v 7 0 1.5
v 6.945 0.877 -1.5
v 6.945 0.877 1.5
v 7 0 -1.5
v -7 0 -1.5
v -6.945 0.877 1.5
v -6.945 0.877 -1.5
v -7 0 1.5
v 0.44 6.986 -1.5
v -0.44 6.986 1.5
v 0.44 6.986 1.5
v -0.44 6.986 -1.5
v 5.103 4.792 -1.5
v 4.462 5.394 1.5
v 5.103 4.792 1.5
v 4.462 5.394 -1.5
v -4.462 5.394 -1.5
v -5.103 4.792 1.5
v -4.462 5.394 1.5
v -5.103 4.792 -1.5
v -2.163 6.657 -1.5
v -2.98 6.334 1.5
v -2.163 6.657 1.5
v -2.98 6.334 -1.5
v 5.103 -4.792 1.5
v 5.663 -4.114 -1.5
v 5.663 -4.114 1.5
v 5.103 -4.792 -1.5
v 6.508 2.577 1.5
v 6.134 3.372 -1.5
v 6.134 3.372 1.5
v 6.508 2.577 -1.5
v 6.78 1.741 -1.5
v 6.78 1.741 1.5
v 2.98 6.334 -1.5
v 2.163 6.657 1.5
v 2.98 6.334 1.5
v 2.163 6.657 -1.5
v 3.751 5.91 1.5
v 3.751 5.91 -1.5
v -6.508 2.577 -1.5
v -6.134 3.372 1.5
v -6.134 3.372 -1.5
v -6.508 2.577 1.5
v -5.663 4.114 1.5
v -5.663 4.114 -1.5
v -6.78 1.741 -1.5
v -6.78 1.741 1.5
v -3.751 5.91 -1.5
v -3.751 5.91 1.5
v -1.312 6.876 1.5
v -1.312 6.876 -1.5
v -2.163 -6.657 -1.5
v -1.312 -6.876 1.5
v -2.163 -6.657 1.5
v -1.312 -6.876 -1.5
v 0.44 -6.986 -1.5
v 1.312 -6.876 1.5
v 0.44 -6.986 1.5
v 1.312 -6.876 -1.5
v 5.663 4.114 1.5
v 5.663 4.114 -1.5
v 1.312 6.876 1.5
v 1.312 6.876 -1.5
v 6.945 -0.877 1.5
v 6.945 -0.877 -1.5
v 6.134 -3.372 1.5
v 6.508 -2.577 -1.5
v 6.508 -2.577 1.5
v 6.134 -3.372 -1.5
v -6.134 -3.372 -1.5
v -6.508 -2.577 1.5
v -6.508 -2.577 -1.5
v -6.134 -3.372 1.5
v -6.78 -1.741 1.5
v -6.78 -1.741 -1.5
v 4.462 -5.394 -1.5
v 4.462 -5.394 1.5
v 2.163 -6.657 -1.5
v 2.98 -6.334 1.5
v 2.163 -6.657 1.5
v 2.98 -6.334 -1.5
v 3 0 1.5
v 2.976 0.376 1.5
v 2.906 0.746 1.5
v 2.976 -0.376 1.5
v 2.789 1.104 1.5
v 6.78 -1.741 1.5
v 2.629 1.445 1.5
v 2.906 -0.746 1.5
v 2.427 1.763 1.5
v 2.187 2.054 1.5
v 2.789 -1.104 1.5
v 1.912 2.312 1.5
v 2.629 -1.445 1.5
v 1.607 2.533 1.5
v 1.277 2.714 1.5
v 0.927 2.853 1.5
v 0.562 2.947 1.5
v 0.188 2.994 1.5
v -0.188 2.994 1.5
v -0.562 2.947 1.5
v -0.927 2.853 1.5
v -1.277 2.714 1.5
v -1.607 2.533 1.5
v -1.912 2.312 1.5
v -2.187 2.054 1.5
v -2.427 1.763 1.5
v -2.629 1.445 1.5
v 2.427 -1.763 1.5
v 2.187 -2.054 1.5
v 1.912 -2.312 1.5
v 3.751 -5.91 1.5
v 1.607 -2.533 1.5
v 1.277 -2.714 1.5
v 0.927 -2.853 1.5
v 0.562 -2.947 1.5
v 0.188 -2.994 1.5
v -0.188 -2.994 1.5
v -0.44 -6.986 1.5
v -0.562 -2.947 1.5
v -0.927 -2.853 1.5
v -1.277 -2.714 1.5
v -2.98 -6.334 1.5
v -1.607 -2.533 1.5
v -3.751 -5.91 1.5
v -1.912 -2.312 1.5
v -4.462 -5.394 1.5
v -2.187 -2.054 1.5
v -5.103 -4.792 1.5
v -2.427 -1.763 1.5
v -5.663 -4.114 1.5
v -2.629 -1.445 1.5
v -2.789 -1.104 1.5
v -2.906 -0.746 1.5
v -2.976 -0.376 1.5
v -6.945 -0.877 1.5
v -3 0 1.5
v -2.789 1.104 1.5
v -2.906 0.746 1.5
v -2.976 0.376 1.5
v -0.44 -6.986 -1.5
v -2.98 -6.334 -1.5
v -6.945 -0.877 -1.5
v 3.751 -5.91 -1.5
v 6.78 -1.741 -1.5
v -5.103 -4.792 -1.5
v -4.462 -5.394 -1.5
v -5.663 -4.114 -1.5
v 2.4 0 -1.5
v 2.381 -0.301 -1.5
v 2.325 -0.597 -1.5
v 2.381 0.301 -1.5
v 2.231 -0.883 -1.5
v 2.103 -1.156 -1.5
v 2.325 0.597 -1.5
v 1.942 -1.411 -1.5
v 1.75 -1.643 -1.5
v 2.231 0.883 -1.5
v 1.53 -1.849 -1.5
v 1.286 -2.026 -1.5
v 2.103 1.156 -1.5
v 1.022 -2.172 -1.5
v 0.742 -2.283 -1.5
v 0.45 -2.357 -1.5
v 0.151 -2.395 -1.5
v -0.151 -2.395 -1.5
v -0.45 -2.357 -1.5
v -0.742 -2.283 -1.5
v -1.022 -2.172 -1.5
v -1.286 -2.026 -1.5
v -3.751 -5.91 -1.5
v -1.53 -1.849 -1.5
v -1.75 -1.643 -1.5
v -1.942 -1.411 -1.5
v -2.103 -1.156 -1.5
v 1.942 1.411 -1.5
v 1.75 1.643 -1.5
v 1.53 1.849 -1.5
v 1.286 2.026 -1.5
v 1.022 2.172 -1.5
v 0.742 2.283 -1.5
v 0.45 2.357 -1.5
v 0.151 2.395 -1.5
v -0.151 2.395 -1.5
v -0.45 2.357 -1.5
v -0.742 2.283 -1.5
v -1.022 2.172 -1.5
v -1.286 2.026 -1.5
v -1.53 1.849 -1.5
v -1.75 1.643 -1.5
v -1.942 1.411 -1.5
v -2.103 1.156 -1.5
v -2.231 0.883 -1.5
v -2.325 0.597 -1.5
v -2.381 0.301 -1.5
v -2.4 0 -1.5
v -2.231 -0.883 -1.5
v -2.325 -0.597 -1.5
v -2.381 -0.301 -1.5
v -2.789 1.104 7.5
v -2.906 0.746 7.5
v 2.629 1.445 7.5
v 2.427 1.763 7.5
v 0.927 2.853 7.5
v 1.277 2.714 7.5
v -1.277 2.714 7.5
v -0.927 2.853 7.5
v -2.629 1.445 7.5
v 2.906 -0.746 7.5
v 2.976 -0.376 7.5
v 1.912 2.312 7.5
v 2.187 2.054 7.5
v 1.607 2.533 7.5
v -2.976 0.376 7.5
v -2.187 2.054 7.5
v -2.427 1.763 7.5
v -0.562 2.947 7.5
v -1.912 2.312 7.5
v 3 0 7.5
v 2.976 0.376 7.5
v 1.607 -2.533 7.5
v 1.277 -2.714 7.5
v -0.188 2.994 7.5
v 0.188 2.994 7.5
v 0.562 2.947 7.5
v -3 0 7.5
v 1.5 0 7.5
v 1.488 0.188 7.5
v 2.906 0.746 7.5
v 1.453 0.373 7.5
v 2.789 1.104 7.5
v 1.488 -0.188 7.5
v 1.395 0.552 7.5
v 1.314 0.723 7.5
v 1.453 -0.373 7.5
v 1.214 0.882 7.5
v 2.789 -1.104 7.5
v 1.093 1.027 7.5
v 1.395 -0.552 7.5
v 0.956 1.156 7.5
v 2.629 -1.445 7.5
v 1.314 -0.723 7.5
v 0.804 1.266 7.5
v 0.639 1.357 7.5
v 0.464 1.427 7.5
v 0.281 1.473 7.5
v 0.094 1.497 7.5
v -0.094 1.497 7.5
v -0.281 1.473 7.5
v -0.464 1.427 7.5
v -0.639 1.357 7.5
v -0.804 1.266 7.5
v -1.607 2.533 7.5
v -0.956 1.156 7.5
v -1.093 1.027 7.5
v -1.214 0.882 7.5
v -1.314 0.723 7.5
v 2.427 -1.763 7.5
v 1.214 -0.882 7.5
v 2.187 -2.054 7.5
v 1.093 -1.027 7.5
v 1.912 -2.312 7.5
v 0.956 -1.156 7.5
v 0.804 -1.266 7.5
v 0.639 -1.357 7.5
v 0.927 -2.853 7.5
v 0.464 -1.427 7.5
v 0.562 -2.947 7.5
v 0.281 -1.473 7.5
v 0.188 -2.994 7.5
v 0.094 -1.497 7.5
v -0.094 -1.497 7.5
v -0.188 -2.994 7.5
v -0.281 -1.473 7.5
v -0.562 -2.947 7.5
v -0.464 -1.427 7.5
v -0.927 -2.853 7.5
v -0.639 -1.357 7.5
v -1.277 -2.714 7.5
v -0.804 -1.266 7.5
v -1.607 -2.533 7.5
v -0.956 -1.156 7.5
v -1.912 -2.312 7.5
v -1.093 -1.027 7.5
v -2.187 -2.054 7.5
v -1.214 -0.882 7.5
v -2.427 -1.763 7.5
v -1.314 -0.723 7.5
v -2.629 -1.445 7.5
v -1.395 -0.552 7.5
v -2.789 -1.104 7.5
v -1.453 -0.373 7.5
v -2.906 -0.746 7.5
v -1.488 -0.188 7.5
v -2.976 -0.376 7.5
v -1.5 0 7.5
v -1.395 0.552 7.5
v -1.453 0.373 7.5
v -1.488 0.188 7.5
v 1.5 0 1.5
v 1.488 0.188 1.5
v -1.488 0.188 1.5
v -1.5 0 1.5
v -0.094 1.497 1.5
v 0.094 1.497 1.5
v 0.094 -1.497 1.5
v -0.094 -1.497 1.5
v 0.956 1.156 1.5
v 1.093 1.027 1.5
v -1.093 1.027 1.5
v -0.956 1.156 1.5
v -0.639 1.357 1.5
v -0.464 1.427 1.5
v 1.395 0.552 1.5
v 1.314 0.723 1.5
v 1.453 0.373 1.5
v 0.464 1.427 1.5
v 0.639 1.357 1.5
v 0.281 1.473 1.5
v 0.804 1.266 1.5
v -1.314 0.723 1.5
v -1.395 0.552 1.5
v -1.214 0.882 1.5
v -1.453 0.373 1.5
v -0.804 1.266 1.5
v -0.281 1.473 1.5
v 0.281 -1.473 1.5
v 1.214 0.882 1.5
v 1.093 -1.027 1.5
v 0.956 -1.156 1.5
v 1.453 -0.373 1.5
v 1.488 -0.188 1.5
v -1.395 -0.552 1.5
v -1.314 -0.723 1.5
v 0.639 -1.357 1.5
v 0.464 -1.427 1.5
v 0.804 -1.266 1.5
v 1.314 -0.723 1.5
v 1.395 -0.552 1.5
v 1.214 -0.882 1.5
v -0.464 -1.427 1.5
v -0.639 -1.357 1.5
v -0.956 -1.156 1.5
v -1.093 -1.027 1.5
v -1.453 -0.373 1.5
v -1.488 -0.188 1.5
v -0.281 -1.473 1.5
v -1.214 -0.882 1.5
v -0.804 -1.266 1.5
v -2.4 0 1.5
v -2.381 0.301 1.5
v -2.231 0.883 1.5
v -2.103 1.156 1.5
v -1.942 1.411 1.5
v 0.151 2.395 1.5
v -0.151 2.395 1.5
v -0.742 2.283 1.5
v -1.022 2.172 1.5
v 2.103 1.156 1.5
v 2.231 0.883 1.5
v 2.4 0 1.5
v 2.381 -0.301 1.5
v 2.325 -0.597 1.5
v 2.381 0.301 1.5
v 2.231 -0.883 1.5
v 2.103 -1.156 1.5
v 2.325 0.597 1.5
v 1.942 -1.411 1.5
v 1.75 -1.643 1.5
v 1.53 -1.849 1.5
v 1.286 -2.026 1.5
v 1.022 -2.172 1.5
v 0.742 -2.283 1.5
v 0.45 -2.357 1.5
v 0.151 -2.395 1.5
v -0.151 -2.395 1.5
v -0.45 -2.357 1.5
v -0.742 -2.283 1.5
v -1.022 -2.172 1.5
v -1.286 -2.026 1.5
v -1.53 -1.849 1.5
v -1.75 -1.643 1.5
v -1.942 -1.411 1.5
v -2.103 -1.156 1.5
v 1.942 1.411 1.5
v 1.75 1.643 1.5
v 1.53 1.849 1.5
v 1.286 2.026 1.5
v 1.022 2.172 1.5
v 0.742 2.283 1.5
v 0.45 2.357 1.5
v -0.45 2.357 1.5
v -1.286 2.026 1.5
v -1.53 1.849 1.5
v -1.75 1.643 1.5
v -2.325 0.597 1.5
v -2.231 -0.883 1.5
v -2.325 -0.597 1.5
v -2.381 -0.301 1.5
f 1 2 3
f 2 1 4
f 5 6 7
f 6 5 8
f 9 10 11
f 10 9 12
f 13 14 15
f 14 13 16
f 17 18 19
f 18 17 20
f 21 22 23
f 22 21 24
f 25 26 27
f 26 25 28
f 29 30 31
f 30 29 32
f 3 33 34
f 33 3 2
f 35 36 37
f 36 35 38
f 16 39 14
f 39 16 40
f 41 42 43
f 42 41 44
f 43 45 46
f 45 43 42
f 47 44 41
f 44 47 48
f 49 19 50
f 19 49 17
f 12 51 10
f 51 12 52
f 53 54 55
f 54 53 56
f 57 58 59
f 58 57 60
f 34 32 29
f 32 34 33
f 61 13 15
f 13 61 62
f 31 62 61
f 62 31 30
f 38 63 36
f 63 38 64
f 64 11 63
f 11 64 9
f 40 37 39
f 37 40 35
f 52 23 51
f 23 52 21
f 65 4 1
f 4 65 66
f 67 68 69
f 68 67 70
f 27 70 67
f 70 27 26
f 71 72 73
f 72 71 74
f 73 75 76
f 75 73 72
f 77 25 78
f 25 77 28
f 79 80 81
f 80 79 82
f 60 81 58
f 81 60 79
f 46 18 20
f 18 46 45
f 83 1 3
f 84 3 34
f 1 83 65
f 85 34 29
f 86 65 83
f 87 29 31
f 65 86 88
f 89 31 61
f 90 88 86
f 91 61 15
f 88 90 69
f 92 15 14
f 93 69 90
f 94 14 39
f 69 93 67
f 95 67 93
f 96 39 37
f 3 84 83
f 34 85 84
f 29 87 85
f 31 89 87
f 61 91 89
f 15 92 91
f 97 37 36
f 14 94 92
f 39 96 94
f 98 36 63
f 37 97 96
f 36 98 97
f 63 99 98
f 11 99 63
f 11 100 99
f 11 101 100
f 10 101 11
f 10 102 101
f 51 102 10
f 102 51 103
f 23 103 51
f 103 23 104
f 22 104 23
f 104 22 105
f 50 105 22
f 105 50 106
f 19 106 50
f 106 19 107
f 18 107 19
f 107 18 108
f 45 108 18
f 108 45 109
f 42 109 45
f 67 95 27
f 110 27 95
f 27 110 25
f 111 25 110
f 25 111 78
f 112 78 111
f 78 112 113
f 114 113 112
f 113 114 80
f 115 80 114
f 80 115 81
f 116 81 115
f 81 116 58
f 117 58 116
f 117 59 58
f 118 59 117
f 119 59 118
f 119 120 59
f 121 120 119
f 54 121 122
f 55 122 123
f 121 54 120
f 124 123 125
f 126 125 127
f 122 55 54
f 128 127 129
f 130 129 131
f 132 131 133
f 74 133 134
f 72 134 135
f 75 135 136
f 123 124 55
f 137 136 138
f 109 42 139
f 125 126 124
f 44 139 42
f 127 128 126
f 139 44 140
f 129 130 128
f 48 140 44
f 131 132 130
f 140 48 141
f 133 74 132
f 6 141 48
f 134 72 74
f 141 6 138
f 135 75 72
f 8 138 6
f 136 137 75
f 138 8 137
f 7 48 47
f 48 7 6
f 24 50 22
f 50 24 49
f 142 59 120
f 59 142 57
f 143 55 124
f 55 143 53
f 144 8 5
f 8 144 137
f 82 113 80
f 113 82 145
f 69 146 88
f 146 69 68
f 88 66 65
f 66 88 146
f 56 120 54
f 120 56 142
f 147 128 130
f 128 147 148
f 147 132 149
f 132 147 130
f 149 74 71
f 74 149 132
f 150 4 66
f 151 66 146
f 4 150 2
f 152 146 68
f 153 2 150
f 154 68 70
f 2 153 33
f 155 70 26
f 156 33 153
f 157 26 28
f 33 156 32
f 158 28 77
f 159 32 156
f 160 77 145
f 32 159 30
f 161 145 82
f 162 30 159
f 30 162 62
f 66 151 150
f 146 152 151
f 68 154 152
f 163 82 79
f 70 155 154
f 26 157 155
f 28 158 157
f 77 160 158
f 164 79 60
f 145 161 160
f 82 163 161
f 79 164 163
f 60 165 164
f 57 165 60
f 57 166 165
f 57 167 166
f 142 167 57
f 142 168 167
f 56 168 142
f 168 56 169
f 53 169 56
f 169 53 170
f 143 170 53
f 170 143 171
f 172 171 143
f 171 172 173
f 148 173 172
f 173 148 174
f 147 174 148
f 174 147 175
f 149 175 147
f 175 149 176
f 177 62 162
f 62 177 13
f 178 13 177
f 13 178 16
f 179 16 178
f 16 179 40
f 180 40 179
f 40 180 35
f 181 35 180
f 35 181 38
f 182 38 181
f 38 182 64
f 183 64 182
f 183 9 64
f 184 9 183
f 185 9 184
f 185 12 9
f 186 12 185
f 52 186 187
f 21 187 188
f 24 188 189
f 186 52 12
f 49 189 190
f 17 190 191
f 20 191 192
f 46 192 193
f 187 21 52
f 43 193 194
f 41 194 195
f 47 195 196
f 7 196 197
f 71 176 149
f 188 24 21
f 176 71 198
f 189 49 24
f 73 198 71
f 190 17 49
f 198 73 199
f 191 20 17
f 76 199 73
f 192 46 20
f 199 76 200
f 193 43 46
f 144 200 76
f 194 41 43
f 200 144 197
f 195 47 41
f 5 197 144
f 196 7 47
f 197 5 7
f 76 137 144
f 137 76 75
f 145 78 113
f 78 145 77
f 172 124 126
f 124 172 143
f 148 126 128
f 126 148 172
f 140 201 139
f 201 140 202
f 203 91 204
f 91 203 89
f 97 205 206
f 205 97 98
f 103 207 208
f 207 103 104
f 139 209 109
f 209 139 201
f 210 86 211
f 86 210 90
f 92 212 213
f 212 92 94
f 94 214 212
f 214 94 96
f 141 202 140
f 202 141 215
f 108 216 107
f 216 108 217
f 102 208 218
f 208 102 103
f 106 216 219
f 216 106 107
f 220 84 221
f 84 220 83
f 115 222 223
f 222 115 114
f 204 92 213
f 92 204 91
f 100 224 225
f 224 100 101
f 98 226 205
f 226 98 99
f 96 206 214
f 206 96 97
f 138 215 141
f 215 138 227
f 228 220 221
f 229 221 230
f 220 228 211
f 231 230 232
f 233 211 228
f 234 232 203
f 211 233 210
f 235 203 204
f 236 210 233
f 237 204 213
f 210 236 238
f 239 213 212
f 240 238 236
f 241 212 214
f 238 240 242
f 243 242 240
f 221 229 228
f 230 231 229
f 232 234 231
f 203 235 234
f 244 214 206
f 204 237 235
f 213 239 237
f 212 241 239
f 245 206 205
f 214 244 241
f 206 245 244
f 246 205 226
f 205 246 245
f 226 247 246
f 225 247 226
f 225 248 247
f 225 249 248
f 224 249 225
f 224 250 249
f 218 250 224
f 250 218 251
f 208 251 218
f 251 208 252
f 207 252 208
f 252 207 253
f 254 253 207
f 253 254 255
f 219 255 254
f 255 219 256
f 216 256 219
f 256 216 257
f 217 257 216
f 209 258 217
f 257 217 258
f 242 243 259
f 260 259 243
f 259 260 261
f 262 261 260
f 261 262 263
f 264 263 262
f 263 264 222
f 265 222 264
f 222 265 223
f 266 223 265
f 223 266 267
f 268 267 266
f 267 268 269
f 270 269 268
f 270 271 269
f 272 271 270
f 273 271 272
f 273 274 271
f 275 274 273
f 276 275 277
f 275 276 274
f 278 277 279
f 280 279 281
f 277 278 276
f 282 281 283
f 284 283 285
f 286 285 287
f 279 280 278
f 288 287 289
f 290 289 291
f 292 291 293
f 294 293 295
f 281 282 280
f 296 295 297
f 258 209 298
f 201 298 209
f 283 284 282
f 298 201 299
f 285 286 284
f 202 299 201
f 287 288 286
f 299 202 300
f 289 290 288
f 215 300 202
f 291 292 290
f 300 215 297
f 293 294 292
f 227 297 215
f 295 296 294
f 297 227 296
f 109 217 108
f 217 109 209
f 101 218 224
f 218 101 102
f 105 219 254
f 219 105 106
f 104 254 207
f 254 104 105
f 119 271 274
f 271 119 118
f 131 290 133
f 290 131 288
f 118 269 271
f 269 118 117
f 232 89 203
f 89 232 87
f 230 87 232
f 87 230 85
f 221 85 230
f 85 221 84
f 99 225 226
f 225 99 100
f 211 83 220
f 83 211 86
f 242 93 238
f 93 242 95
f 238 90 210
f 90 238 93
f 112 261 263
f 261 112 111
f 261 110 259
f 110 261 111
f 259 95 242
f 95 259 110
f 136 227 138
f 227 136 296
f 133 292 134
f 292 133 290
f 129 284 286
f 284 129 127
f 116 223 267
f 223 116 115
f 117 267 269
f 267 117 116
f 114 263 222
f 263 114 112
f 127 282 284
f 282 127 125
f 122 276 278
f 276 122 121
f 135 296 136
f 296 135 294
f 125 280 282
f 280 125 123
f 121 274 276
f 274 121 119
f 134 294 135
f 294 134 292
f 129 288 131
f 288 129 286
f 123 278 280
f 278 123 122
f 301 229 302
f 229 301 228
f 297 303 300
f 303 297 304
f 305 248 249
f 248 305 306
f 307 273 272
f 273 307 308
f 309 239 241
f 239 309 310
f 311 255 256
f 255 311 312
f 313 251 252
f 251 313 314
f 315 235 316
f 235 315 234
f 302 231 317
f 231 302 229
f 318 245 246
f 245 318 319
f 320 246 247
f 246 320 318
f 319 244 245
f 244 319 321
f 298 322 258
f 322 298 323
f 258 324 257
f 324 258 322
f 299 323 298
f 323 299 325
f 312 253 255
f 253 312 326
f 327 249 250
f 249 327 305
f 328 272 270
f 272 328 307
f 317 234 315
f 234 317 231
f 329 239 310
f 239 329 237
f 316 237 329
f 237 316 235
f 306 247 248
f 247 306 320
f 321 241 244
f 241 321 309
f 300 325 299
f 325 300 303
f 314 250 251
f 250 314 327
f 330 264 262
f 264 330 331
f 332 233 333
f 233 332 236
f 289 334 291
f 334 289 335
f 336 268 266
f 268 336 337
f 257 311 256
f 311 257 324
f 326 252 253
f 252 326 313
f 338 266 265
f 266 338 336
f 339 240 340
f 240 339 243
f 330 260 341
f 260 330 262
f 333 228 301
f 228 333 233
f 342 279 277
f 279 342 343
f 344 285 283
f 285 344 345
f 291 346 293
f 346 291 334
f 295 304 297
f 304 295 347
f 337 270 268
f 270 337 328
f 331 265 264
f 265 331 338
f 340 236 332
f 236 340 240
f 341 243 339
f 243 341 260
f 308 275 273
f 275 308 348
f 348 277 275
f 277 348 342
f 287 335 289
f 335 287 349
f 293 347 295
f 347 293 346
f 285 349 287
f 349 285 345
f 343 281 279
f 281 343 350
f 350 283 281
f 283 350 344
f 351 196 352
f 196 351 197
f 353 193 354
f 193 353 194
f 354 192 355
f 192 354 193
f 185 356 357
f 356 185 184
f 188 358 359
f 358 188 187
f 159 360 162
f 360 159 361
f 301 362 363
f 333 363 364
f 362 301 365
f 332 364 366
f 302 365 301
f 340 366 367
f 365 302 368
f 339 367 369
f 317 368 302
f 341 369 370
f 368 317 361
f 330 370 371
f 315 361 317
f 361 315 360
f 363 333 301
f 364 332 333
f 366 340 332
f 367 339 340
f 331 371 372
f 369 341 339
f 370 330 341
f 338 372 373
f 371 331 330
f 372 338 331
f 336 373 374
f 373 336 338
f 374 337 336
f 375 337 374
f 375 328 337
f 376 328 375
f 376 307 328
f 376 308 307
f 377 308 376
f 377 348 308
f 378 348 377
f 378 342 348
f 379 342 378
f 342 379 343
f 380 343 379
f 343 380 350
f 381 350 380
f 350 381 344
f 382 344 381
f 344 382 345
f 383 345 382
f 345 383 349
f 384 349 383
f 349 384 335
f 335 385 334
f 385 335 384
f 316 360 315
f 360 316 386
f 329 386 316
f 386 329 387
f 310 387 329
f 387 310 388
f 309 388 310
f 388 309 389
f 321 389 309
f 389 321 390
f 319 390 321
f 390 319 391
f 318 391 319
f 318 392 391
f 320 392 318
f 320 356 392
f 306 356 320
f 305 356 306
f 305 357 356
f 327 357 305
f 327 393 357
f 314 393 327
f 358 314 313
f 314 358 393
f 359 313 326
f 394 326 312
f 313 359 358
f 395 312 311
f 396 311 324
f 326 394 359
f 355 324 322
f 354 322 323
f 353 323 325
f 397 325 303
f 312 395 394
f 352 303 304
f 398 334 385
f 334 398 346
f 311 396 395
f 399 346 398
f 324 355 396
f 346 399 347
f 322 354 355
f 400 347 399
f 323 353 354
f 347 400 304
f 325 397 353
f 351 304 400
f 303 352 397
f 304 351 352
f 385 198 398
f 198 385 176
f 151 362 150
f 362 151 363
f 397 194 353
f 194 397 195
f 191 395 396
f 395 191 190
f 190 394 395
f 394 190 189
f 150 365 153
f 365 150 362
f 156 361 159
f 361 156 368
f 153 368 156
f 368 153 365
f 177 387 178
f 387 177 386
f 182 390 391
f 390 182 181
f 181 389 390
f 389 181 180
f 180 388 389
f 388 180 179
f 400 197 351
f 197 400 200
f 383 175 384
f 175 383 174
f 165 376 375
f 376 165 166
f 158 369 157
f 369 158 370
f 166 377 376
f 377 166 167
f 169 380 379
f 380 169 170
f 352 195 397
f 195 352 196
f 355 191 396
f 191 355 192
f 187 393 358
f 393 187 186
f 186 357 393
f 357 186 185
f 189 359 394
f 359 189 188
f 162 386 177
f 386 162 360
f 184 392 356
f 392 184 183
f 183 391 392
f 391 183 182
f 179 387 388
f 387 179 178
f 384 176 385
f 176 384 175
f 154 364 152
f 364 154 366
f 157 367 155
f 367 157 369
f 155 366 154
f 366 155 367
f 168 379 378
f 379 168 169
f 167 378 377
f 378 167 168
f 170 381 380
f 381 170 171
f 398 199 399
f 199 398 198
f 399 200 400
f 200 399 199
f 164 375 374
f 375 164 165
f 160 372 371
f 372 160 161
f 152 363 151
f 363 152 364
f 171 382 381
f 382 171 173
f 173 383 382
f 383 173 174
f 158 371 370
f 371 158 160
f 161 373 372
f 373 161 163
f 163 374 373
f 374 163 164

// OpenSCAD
$fn = 50;


difference() {
	union() {
		translate(v = [0, 0, -1.5000000000]) {
			rotate(a = [0, 0, 0]) {
				cylinder(h = 3, r = 7.0000000000);
			}
		}
		translate(v = [0, 0, -1.5000000000]) {
			rotate(a = [0, 0, 0]) {
				cylinder(h = 9, r = 3.0000000000);
			}
		}
	}
	union() {
		translate(v = [0, 0, -125.0000000000]) {
			rotate(a = [0, 0, 0]) {
				cylinder(h = 250, r = 1.5000000000);
			}
		}
		#translate(v = [0, 0, 1.5000000000]) {
			rotate(a = [0, 180, 0]) {
				cylinder(h = 3, r1 = 2.4000000000, r2 = 2.4000000000);
			}
		}
		#translate(v = [0, 0, 7.5000000000]) {
			rotate(a = [0, 180, 0]) {
				cylinder(h = 9, r = 1.5000000000);
			}
		}
	}
}
